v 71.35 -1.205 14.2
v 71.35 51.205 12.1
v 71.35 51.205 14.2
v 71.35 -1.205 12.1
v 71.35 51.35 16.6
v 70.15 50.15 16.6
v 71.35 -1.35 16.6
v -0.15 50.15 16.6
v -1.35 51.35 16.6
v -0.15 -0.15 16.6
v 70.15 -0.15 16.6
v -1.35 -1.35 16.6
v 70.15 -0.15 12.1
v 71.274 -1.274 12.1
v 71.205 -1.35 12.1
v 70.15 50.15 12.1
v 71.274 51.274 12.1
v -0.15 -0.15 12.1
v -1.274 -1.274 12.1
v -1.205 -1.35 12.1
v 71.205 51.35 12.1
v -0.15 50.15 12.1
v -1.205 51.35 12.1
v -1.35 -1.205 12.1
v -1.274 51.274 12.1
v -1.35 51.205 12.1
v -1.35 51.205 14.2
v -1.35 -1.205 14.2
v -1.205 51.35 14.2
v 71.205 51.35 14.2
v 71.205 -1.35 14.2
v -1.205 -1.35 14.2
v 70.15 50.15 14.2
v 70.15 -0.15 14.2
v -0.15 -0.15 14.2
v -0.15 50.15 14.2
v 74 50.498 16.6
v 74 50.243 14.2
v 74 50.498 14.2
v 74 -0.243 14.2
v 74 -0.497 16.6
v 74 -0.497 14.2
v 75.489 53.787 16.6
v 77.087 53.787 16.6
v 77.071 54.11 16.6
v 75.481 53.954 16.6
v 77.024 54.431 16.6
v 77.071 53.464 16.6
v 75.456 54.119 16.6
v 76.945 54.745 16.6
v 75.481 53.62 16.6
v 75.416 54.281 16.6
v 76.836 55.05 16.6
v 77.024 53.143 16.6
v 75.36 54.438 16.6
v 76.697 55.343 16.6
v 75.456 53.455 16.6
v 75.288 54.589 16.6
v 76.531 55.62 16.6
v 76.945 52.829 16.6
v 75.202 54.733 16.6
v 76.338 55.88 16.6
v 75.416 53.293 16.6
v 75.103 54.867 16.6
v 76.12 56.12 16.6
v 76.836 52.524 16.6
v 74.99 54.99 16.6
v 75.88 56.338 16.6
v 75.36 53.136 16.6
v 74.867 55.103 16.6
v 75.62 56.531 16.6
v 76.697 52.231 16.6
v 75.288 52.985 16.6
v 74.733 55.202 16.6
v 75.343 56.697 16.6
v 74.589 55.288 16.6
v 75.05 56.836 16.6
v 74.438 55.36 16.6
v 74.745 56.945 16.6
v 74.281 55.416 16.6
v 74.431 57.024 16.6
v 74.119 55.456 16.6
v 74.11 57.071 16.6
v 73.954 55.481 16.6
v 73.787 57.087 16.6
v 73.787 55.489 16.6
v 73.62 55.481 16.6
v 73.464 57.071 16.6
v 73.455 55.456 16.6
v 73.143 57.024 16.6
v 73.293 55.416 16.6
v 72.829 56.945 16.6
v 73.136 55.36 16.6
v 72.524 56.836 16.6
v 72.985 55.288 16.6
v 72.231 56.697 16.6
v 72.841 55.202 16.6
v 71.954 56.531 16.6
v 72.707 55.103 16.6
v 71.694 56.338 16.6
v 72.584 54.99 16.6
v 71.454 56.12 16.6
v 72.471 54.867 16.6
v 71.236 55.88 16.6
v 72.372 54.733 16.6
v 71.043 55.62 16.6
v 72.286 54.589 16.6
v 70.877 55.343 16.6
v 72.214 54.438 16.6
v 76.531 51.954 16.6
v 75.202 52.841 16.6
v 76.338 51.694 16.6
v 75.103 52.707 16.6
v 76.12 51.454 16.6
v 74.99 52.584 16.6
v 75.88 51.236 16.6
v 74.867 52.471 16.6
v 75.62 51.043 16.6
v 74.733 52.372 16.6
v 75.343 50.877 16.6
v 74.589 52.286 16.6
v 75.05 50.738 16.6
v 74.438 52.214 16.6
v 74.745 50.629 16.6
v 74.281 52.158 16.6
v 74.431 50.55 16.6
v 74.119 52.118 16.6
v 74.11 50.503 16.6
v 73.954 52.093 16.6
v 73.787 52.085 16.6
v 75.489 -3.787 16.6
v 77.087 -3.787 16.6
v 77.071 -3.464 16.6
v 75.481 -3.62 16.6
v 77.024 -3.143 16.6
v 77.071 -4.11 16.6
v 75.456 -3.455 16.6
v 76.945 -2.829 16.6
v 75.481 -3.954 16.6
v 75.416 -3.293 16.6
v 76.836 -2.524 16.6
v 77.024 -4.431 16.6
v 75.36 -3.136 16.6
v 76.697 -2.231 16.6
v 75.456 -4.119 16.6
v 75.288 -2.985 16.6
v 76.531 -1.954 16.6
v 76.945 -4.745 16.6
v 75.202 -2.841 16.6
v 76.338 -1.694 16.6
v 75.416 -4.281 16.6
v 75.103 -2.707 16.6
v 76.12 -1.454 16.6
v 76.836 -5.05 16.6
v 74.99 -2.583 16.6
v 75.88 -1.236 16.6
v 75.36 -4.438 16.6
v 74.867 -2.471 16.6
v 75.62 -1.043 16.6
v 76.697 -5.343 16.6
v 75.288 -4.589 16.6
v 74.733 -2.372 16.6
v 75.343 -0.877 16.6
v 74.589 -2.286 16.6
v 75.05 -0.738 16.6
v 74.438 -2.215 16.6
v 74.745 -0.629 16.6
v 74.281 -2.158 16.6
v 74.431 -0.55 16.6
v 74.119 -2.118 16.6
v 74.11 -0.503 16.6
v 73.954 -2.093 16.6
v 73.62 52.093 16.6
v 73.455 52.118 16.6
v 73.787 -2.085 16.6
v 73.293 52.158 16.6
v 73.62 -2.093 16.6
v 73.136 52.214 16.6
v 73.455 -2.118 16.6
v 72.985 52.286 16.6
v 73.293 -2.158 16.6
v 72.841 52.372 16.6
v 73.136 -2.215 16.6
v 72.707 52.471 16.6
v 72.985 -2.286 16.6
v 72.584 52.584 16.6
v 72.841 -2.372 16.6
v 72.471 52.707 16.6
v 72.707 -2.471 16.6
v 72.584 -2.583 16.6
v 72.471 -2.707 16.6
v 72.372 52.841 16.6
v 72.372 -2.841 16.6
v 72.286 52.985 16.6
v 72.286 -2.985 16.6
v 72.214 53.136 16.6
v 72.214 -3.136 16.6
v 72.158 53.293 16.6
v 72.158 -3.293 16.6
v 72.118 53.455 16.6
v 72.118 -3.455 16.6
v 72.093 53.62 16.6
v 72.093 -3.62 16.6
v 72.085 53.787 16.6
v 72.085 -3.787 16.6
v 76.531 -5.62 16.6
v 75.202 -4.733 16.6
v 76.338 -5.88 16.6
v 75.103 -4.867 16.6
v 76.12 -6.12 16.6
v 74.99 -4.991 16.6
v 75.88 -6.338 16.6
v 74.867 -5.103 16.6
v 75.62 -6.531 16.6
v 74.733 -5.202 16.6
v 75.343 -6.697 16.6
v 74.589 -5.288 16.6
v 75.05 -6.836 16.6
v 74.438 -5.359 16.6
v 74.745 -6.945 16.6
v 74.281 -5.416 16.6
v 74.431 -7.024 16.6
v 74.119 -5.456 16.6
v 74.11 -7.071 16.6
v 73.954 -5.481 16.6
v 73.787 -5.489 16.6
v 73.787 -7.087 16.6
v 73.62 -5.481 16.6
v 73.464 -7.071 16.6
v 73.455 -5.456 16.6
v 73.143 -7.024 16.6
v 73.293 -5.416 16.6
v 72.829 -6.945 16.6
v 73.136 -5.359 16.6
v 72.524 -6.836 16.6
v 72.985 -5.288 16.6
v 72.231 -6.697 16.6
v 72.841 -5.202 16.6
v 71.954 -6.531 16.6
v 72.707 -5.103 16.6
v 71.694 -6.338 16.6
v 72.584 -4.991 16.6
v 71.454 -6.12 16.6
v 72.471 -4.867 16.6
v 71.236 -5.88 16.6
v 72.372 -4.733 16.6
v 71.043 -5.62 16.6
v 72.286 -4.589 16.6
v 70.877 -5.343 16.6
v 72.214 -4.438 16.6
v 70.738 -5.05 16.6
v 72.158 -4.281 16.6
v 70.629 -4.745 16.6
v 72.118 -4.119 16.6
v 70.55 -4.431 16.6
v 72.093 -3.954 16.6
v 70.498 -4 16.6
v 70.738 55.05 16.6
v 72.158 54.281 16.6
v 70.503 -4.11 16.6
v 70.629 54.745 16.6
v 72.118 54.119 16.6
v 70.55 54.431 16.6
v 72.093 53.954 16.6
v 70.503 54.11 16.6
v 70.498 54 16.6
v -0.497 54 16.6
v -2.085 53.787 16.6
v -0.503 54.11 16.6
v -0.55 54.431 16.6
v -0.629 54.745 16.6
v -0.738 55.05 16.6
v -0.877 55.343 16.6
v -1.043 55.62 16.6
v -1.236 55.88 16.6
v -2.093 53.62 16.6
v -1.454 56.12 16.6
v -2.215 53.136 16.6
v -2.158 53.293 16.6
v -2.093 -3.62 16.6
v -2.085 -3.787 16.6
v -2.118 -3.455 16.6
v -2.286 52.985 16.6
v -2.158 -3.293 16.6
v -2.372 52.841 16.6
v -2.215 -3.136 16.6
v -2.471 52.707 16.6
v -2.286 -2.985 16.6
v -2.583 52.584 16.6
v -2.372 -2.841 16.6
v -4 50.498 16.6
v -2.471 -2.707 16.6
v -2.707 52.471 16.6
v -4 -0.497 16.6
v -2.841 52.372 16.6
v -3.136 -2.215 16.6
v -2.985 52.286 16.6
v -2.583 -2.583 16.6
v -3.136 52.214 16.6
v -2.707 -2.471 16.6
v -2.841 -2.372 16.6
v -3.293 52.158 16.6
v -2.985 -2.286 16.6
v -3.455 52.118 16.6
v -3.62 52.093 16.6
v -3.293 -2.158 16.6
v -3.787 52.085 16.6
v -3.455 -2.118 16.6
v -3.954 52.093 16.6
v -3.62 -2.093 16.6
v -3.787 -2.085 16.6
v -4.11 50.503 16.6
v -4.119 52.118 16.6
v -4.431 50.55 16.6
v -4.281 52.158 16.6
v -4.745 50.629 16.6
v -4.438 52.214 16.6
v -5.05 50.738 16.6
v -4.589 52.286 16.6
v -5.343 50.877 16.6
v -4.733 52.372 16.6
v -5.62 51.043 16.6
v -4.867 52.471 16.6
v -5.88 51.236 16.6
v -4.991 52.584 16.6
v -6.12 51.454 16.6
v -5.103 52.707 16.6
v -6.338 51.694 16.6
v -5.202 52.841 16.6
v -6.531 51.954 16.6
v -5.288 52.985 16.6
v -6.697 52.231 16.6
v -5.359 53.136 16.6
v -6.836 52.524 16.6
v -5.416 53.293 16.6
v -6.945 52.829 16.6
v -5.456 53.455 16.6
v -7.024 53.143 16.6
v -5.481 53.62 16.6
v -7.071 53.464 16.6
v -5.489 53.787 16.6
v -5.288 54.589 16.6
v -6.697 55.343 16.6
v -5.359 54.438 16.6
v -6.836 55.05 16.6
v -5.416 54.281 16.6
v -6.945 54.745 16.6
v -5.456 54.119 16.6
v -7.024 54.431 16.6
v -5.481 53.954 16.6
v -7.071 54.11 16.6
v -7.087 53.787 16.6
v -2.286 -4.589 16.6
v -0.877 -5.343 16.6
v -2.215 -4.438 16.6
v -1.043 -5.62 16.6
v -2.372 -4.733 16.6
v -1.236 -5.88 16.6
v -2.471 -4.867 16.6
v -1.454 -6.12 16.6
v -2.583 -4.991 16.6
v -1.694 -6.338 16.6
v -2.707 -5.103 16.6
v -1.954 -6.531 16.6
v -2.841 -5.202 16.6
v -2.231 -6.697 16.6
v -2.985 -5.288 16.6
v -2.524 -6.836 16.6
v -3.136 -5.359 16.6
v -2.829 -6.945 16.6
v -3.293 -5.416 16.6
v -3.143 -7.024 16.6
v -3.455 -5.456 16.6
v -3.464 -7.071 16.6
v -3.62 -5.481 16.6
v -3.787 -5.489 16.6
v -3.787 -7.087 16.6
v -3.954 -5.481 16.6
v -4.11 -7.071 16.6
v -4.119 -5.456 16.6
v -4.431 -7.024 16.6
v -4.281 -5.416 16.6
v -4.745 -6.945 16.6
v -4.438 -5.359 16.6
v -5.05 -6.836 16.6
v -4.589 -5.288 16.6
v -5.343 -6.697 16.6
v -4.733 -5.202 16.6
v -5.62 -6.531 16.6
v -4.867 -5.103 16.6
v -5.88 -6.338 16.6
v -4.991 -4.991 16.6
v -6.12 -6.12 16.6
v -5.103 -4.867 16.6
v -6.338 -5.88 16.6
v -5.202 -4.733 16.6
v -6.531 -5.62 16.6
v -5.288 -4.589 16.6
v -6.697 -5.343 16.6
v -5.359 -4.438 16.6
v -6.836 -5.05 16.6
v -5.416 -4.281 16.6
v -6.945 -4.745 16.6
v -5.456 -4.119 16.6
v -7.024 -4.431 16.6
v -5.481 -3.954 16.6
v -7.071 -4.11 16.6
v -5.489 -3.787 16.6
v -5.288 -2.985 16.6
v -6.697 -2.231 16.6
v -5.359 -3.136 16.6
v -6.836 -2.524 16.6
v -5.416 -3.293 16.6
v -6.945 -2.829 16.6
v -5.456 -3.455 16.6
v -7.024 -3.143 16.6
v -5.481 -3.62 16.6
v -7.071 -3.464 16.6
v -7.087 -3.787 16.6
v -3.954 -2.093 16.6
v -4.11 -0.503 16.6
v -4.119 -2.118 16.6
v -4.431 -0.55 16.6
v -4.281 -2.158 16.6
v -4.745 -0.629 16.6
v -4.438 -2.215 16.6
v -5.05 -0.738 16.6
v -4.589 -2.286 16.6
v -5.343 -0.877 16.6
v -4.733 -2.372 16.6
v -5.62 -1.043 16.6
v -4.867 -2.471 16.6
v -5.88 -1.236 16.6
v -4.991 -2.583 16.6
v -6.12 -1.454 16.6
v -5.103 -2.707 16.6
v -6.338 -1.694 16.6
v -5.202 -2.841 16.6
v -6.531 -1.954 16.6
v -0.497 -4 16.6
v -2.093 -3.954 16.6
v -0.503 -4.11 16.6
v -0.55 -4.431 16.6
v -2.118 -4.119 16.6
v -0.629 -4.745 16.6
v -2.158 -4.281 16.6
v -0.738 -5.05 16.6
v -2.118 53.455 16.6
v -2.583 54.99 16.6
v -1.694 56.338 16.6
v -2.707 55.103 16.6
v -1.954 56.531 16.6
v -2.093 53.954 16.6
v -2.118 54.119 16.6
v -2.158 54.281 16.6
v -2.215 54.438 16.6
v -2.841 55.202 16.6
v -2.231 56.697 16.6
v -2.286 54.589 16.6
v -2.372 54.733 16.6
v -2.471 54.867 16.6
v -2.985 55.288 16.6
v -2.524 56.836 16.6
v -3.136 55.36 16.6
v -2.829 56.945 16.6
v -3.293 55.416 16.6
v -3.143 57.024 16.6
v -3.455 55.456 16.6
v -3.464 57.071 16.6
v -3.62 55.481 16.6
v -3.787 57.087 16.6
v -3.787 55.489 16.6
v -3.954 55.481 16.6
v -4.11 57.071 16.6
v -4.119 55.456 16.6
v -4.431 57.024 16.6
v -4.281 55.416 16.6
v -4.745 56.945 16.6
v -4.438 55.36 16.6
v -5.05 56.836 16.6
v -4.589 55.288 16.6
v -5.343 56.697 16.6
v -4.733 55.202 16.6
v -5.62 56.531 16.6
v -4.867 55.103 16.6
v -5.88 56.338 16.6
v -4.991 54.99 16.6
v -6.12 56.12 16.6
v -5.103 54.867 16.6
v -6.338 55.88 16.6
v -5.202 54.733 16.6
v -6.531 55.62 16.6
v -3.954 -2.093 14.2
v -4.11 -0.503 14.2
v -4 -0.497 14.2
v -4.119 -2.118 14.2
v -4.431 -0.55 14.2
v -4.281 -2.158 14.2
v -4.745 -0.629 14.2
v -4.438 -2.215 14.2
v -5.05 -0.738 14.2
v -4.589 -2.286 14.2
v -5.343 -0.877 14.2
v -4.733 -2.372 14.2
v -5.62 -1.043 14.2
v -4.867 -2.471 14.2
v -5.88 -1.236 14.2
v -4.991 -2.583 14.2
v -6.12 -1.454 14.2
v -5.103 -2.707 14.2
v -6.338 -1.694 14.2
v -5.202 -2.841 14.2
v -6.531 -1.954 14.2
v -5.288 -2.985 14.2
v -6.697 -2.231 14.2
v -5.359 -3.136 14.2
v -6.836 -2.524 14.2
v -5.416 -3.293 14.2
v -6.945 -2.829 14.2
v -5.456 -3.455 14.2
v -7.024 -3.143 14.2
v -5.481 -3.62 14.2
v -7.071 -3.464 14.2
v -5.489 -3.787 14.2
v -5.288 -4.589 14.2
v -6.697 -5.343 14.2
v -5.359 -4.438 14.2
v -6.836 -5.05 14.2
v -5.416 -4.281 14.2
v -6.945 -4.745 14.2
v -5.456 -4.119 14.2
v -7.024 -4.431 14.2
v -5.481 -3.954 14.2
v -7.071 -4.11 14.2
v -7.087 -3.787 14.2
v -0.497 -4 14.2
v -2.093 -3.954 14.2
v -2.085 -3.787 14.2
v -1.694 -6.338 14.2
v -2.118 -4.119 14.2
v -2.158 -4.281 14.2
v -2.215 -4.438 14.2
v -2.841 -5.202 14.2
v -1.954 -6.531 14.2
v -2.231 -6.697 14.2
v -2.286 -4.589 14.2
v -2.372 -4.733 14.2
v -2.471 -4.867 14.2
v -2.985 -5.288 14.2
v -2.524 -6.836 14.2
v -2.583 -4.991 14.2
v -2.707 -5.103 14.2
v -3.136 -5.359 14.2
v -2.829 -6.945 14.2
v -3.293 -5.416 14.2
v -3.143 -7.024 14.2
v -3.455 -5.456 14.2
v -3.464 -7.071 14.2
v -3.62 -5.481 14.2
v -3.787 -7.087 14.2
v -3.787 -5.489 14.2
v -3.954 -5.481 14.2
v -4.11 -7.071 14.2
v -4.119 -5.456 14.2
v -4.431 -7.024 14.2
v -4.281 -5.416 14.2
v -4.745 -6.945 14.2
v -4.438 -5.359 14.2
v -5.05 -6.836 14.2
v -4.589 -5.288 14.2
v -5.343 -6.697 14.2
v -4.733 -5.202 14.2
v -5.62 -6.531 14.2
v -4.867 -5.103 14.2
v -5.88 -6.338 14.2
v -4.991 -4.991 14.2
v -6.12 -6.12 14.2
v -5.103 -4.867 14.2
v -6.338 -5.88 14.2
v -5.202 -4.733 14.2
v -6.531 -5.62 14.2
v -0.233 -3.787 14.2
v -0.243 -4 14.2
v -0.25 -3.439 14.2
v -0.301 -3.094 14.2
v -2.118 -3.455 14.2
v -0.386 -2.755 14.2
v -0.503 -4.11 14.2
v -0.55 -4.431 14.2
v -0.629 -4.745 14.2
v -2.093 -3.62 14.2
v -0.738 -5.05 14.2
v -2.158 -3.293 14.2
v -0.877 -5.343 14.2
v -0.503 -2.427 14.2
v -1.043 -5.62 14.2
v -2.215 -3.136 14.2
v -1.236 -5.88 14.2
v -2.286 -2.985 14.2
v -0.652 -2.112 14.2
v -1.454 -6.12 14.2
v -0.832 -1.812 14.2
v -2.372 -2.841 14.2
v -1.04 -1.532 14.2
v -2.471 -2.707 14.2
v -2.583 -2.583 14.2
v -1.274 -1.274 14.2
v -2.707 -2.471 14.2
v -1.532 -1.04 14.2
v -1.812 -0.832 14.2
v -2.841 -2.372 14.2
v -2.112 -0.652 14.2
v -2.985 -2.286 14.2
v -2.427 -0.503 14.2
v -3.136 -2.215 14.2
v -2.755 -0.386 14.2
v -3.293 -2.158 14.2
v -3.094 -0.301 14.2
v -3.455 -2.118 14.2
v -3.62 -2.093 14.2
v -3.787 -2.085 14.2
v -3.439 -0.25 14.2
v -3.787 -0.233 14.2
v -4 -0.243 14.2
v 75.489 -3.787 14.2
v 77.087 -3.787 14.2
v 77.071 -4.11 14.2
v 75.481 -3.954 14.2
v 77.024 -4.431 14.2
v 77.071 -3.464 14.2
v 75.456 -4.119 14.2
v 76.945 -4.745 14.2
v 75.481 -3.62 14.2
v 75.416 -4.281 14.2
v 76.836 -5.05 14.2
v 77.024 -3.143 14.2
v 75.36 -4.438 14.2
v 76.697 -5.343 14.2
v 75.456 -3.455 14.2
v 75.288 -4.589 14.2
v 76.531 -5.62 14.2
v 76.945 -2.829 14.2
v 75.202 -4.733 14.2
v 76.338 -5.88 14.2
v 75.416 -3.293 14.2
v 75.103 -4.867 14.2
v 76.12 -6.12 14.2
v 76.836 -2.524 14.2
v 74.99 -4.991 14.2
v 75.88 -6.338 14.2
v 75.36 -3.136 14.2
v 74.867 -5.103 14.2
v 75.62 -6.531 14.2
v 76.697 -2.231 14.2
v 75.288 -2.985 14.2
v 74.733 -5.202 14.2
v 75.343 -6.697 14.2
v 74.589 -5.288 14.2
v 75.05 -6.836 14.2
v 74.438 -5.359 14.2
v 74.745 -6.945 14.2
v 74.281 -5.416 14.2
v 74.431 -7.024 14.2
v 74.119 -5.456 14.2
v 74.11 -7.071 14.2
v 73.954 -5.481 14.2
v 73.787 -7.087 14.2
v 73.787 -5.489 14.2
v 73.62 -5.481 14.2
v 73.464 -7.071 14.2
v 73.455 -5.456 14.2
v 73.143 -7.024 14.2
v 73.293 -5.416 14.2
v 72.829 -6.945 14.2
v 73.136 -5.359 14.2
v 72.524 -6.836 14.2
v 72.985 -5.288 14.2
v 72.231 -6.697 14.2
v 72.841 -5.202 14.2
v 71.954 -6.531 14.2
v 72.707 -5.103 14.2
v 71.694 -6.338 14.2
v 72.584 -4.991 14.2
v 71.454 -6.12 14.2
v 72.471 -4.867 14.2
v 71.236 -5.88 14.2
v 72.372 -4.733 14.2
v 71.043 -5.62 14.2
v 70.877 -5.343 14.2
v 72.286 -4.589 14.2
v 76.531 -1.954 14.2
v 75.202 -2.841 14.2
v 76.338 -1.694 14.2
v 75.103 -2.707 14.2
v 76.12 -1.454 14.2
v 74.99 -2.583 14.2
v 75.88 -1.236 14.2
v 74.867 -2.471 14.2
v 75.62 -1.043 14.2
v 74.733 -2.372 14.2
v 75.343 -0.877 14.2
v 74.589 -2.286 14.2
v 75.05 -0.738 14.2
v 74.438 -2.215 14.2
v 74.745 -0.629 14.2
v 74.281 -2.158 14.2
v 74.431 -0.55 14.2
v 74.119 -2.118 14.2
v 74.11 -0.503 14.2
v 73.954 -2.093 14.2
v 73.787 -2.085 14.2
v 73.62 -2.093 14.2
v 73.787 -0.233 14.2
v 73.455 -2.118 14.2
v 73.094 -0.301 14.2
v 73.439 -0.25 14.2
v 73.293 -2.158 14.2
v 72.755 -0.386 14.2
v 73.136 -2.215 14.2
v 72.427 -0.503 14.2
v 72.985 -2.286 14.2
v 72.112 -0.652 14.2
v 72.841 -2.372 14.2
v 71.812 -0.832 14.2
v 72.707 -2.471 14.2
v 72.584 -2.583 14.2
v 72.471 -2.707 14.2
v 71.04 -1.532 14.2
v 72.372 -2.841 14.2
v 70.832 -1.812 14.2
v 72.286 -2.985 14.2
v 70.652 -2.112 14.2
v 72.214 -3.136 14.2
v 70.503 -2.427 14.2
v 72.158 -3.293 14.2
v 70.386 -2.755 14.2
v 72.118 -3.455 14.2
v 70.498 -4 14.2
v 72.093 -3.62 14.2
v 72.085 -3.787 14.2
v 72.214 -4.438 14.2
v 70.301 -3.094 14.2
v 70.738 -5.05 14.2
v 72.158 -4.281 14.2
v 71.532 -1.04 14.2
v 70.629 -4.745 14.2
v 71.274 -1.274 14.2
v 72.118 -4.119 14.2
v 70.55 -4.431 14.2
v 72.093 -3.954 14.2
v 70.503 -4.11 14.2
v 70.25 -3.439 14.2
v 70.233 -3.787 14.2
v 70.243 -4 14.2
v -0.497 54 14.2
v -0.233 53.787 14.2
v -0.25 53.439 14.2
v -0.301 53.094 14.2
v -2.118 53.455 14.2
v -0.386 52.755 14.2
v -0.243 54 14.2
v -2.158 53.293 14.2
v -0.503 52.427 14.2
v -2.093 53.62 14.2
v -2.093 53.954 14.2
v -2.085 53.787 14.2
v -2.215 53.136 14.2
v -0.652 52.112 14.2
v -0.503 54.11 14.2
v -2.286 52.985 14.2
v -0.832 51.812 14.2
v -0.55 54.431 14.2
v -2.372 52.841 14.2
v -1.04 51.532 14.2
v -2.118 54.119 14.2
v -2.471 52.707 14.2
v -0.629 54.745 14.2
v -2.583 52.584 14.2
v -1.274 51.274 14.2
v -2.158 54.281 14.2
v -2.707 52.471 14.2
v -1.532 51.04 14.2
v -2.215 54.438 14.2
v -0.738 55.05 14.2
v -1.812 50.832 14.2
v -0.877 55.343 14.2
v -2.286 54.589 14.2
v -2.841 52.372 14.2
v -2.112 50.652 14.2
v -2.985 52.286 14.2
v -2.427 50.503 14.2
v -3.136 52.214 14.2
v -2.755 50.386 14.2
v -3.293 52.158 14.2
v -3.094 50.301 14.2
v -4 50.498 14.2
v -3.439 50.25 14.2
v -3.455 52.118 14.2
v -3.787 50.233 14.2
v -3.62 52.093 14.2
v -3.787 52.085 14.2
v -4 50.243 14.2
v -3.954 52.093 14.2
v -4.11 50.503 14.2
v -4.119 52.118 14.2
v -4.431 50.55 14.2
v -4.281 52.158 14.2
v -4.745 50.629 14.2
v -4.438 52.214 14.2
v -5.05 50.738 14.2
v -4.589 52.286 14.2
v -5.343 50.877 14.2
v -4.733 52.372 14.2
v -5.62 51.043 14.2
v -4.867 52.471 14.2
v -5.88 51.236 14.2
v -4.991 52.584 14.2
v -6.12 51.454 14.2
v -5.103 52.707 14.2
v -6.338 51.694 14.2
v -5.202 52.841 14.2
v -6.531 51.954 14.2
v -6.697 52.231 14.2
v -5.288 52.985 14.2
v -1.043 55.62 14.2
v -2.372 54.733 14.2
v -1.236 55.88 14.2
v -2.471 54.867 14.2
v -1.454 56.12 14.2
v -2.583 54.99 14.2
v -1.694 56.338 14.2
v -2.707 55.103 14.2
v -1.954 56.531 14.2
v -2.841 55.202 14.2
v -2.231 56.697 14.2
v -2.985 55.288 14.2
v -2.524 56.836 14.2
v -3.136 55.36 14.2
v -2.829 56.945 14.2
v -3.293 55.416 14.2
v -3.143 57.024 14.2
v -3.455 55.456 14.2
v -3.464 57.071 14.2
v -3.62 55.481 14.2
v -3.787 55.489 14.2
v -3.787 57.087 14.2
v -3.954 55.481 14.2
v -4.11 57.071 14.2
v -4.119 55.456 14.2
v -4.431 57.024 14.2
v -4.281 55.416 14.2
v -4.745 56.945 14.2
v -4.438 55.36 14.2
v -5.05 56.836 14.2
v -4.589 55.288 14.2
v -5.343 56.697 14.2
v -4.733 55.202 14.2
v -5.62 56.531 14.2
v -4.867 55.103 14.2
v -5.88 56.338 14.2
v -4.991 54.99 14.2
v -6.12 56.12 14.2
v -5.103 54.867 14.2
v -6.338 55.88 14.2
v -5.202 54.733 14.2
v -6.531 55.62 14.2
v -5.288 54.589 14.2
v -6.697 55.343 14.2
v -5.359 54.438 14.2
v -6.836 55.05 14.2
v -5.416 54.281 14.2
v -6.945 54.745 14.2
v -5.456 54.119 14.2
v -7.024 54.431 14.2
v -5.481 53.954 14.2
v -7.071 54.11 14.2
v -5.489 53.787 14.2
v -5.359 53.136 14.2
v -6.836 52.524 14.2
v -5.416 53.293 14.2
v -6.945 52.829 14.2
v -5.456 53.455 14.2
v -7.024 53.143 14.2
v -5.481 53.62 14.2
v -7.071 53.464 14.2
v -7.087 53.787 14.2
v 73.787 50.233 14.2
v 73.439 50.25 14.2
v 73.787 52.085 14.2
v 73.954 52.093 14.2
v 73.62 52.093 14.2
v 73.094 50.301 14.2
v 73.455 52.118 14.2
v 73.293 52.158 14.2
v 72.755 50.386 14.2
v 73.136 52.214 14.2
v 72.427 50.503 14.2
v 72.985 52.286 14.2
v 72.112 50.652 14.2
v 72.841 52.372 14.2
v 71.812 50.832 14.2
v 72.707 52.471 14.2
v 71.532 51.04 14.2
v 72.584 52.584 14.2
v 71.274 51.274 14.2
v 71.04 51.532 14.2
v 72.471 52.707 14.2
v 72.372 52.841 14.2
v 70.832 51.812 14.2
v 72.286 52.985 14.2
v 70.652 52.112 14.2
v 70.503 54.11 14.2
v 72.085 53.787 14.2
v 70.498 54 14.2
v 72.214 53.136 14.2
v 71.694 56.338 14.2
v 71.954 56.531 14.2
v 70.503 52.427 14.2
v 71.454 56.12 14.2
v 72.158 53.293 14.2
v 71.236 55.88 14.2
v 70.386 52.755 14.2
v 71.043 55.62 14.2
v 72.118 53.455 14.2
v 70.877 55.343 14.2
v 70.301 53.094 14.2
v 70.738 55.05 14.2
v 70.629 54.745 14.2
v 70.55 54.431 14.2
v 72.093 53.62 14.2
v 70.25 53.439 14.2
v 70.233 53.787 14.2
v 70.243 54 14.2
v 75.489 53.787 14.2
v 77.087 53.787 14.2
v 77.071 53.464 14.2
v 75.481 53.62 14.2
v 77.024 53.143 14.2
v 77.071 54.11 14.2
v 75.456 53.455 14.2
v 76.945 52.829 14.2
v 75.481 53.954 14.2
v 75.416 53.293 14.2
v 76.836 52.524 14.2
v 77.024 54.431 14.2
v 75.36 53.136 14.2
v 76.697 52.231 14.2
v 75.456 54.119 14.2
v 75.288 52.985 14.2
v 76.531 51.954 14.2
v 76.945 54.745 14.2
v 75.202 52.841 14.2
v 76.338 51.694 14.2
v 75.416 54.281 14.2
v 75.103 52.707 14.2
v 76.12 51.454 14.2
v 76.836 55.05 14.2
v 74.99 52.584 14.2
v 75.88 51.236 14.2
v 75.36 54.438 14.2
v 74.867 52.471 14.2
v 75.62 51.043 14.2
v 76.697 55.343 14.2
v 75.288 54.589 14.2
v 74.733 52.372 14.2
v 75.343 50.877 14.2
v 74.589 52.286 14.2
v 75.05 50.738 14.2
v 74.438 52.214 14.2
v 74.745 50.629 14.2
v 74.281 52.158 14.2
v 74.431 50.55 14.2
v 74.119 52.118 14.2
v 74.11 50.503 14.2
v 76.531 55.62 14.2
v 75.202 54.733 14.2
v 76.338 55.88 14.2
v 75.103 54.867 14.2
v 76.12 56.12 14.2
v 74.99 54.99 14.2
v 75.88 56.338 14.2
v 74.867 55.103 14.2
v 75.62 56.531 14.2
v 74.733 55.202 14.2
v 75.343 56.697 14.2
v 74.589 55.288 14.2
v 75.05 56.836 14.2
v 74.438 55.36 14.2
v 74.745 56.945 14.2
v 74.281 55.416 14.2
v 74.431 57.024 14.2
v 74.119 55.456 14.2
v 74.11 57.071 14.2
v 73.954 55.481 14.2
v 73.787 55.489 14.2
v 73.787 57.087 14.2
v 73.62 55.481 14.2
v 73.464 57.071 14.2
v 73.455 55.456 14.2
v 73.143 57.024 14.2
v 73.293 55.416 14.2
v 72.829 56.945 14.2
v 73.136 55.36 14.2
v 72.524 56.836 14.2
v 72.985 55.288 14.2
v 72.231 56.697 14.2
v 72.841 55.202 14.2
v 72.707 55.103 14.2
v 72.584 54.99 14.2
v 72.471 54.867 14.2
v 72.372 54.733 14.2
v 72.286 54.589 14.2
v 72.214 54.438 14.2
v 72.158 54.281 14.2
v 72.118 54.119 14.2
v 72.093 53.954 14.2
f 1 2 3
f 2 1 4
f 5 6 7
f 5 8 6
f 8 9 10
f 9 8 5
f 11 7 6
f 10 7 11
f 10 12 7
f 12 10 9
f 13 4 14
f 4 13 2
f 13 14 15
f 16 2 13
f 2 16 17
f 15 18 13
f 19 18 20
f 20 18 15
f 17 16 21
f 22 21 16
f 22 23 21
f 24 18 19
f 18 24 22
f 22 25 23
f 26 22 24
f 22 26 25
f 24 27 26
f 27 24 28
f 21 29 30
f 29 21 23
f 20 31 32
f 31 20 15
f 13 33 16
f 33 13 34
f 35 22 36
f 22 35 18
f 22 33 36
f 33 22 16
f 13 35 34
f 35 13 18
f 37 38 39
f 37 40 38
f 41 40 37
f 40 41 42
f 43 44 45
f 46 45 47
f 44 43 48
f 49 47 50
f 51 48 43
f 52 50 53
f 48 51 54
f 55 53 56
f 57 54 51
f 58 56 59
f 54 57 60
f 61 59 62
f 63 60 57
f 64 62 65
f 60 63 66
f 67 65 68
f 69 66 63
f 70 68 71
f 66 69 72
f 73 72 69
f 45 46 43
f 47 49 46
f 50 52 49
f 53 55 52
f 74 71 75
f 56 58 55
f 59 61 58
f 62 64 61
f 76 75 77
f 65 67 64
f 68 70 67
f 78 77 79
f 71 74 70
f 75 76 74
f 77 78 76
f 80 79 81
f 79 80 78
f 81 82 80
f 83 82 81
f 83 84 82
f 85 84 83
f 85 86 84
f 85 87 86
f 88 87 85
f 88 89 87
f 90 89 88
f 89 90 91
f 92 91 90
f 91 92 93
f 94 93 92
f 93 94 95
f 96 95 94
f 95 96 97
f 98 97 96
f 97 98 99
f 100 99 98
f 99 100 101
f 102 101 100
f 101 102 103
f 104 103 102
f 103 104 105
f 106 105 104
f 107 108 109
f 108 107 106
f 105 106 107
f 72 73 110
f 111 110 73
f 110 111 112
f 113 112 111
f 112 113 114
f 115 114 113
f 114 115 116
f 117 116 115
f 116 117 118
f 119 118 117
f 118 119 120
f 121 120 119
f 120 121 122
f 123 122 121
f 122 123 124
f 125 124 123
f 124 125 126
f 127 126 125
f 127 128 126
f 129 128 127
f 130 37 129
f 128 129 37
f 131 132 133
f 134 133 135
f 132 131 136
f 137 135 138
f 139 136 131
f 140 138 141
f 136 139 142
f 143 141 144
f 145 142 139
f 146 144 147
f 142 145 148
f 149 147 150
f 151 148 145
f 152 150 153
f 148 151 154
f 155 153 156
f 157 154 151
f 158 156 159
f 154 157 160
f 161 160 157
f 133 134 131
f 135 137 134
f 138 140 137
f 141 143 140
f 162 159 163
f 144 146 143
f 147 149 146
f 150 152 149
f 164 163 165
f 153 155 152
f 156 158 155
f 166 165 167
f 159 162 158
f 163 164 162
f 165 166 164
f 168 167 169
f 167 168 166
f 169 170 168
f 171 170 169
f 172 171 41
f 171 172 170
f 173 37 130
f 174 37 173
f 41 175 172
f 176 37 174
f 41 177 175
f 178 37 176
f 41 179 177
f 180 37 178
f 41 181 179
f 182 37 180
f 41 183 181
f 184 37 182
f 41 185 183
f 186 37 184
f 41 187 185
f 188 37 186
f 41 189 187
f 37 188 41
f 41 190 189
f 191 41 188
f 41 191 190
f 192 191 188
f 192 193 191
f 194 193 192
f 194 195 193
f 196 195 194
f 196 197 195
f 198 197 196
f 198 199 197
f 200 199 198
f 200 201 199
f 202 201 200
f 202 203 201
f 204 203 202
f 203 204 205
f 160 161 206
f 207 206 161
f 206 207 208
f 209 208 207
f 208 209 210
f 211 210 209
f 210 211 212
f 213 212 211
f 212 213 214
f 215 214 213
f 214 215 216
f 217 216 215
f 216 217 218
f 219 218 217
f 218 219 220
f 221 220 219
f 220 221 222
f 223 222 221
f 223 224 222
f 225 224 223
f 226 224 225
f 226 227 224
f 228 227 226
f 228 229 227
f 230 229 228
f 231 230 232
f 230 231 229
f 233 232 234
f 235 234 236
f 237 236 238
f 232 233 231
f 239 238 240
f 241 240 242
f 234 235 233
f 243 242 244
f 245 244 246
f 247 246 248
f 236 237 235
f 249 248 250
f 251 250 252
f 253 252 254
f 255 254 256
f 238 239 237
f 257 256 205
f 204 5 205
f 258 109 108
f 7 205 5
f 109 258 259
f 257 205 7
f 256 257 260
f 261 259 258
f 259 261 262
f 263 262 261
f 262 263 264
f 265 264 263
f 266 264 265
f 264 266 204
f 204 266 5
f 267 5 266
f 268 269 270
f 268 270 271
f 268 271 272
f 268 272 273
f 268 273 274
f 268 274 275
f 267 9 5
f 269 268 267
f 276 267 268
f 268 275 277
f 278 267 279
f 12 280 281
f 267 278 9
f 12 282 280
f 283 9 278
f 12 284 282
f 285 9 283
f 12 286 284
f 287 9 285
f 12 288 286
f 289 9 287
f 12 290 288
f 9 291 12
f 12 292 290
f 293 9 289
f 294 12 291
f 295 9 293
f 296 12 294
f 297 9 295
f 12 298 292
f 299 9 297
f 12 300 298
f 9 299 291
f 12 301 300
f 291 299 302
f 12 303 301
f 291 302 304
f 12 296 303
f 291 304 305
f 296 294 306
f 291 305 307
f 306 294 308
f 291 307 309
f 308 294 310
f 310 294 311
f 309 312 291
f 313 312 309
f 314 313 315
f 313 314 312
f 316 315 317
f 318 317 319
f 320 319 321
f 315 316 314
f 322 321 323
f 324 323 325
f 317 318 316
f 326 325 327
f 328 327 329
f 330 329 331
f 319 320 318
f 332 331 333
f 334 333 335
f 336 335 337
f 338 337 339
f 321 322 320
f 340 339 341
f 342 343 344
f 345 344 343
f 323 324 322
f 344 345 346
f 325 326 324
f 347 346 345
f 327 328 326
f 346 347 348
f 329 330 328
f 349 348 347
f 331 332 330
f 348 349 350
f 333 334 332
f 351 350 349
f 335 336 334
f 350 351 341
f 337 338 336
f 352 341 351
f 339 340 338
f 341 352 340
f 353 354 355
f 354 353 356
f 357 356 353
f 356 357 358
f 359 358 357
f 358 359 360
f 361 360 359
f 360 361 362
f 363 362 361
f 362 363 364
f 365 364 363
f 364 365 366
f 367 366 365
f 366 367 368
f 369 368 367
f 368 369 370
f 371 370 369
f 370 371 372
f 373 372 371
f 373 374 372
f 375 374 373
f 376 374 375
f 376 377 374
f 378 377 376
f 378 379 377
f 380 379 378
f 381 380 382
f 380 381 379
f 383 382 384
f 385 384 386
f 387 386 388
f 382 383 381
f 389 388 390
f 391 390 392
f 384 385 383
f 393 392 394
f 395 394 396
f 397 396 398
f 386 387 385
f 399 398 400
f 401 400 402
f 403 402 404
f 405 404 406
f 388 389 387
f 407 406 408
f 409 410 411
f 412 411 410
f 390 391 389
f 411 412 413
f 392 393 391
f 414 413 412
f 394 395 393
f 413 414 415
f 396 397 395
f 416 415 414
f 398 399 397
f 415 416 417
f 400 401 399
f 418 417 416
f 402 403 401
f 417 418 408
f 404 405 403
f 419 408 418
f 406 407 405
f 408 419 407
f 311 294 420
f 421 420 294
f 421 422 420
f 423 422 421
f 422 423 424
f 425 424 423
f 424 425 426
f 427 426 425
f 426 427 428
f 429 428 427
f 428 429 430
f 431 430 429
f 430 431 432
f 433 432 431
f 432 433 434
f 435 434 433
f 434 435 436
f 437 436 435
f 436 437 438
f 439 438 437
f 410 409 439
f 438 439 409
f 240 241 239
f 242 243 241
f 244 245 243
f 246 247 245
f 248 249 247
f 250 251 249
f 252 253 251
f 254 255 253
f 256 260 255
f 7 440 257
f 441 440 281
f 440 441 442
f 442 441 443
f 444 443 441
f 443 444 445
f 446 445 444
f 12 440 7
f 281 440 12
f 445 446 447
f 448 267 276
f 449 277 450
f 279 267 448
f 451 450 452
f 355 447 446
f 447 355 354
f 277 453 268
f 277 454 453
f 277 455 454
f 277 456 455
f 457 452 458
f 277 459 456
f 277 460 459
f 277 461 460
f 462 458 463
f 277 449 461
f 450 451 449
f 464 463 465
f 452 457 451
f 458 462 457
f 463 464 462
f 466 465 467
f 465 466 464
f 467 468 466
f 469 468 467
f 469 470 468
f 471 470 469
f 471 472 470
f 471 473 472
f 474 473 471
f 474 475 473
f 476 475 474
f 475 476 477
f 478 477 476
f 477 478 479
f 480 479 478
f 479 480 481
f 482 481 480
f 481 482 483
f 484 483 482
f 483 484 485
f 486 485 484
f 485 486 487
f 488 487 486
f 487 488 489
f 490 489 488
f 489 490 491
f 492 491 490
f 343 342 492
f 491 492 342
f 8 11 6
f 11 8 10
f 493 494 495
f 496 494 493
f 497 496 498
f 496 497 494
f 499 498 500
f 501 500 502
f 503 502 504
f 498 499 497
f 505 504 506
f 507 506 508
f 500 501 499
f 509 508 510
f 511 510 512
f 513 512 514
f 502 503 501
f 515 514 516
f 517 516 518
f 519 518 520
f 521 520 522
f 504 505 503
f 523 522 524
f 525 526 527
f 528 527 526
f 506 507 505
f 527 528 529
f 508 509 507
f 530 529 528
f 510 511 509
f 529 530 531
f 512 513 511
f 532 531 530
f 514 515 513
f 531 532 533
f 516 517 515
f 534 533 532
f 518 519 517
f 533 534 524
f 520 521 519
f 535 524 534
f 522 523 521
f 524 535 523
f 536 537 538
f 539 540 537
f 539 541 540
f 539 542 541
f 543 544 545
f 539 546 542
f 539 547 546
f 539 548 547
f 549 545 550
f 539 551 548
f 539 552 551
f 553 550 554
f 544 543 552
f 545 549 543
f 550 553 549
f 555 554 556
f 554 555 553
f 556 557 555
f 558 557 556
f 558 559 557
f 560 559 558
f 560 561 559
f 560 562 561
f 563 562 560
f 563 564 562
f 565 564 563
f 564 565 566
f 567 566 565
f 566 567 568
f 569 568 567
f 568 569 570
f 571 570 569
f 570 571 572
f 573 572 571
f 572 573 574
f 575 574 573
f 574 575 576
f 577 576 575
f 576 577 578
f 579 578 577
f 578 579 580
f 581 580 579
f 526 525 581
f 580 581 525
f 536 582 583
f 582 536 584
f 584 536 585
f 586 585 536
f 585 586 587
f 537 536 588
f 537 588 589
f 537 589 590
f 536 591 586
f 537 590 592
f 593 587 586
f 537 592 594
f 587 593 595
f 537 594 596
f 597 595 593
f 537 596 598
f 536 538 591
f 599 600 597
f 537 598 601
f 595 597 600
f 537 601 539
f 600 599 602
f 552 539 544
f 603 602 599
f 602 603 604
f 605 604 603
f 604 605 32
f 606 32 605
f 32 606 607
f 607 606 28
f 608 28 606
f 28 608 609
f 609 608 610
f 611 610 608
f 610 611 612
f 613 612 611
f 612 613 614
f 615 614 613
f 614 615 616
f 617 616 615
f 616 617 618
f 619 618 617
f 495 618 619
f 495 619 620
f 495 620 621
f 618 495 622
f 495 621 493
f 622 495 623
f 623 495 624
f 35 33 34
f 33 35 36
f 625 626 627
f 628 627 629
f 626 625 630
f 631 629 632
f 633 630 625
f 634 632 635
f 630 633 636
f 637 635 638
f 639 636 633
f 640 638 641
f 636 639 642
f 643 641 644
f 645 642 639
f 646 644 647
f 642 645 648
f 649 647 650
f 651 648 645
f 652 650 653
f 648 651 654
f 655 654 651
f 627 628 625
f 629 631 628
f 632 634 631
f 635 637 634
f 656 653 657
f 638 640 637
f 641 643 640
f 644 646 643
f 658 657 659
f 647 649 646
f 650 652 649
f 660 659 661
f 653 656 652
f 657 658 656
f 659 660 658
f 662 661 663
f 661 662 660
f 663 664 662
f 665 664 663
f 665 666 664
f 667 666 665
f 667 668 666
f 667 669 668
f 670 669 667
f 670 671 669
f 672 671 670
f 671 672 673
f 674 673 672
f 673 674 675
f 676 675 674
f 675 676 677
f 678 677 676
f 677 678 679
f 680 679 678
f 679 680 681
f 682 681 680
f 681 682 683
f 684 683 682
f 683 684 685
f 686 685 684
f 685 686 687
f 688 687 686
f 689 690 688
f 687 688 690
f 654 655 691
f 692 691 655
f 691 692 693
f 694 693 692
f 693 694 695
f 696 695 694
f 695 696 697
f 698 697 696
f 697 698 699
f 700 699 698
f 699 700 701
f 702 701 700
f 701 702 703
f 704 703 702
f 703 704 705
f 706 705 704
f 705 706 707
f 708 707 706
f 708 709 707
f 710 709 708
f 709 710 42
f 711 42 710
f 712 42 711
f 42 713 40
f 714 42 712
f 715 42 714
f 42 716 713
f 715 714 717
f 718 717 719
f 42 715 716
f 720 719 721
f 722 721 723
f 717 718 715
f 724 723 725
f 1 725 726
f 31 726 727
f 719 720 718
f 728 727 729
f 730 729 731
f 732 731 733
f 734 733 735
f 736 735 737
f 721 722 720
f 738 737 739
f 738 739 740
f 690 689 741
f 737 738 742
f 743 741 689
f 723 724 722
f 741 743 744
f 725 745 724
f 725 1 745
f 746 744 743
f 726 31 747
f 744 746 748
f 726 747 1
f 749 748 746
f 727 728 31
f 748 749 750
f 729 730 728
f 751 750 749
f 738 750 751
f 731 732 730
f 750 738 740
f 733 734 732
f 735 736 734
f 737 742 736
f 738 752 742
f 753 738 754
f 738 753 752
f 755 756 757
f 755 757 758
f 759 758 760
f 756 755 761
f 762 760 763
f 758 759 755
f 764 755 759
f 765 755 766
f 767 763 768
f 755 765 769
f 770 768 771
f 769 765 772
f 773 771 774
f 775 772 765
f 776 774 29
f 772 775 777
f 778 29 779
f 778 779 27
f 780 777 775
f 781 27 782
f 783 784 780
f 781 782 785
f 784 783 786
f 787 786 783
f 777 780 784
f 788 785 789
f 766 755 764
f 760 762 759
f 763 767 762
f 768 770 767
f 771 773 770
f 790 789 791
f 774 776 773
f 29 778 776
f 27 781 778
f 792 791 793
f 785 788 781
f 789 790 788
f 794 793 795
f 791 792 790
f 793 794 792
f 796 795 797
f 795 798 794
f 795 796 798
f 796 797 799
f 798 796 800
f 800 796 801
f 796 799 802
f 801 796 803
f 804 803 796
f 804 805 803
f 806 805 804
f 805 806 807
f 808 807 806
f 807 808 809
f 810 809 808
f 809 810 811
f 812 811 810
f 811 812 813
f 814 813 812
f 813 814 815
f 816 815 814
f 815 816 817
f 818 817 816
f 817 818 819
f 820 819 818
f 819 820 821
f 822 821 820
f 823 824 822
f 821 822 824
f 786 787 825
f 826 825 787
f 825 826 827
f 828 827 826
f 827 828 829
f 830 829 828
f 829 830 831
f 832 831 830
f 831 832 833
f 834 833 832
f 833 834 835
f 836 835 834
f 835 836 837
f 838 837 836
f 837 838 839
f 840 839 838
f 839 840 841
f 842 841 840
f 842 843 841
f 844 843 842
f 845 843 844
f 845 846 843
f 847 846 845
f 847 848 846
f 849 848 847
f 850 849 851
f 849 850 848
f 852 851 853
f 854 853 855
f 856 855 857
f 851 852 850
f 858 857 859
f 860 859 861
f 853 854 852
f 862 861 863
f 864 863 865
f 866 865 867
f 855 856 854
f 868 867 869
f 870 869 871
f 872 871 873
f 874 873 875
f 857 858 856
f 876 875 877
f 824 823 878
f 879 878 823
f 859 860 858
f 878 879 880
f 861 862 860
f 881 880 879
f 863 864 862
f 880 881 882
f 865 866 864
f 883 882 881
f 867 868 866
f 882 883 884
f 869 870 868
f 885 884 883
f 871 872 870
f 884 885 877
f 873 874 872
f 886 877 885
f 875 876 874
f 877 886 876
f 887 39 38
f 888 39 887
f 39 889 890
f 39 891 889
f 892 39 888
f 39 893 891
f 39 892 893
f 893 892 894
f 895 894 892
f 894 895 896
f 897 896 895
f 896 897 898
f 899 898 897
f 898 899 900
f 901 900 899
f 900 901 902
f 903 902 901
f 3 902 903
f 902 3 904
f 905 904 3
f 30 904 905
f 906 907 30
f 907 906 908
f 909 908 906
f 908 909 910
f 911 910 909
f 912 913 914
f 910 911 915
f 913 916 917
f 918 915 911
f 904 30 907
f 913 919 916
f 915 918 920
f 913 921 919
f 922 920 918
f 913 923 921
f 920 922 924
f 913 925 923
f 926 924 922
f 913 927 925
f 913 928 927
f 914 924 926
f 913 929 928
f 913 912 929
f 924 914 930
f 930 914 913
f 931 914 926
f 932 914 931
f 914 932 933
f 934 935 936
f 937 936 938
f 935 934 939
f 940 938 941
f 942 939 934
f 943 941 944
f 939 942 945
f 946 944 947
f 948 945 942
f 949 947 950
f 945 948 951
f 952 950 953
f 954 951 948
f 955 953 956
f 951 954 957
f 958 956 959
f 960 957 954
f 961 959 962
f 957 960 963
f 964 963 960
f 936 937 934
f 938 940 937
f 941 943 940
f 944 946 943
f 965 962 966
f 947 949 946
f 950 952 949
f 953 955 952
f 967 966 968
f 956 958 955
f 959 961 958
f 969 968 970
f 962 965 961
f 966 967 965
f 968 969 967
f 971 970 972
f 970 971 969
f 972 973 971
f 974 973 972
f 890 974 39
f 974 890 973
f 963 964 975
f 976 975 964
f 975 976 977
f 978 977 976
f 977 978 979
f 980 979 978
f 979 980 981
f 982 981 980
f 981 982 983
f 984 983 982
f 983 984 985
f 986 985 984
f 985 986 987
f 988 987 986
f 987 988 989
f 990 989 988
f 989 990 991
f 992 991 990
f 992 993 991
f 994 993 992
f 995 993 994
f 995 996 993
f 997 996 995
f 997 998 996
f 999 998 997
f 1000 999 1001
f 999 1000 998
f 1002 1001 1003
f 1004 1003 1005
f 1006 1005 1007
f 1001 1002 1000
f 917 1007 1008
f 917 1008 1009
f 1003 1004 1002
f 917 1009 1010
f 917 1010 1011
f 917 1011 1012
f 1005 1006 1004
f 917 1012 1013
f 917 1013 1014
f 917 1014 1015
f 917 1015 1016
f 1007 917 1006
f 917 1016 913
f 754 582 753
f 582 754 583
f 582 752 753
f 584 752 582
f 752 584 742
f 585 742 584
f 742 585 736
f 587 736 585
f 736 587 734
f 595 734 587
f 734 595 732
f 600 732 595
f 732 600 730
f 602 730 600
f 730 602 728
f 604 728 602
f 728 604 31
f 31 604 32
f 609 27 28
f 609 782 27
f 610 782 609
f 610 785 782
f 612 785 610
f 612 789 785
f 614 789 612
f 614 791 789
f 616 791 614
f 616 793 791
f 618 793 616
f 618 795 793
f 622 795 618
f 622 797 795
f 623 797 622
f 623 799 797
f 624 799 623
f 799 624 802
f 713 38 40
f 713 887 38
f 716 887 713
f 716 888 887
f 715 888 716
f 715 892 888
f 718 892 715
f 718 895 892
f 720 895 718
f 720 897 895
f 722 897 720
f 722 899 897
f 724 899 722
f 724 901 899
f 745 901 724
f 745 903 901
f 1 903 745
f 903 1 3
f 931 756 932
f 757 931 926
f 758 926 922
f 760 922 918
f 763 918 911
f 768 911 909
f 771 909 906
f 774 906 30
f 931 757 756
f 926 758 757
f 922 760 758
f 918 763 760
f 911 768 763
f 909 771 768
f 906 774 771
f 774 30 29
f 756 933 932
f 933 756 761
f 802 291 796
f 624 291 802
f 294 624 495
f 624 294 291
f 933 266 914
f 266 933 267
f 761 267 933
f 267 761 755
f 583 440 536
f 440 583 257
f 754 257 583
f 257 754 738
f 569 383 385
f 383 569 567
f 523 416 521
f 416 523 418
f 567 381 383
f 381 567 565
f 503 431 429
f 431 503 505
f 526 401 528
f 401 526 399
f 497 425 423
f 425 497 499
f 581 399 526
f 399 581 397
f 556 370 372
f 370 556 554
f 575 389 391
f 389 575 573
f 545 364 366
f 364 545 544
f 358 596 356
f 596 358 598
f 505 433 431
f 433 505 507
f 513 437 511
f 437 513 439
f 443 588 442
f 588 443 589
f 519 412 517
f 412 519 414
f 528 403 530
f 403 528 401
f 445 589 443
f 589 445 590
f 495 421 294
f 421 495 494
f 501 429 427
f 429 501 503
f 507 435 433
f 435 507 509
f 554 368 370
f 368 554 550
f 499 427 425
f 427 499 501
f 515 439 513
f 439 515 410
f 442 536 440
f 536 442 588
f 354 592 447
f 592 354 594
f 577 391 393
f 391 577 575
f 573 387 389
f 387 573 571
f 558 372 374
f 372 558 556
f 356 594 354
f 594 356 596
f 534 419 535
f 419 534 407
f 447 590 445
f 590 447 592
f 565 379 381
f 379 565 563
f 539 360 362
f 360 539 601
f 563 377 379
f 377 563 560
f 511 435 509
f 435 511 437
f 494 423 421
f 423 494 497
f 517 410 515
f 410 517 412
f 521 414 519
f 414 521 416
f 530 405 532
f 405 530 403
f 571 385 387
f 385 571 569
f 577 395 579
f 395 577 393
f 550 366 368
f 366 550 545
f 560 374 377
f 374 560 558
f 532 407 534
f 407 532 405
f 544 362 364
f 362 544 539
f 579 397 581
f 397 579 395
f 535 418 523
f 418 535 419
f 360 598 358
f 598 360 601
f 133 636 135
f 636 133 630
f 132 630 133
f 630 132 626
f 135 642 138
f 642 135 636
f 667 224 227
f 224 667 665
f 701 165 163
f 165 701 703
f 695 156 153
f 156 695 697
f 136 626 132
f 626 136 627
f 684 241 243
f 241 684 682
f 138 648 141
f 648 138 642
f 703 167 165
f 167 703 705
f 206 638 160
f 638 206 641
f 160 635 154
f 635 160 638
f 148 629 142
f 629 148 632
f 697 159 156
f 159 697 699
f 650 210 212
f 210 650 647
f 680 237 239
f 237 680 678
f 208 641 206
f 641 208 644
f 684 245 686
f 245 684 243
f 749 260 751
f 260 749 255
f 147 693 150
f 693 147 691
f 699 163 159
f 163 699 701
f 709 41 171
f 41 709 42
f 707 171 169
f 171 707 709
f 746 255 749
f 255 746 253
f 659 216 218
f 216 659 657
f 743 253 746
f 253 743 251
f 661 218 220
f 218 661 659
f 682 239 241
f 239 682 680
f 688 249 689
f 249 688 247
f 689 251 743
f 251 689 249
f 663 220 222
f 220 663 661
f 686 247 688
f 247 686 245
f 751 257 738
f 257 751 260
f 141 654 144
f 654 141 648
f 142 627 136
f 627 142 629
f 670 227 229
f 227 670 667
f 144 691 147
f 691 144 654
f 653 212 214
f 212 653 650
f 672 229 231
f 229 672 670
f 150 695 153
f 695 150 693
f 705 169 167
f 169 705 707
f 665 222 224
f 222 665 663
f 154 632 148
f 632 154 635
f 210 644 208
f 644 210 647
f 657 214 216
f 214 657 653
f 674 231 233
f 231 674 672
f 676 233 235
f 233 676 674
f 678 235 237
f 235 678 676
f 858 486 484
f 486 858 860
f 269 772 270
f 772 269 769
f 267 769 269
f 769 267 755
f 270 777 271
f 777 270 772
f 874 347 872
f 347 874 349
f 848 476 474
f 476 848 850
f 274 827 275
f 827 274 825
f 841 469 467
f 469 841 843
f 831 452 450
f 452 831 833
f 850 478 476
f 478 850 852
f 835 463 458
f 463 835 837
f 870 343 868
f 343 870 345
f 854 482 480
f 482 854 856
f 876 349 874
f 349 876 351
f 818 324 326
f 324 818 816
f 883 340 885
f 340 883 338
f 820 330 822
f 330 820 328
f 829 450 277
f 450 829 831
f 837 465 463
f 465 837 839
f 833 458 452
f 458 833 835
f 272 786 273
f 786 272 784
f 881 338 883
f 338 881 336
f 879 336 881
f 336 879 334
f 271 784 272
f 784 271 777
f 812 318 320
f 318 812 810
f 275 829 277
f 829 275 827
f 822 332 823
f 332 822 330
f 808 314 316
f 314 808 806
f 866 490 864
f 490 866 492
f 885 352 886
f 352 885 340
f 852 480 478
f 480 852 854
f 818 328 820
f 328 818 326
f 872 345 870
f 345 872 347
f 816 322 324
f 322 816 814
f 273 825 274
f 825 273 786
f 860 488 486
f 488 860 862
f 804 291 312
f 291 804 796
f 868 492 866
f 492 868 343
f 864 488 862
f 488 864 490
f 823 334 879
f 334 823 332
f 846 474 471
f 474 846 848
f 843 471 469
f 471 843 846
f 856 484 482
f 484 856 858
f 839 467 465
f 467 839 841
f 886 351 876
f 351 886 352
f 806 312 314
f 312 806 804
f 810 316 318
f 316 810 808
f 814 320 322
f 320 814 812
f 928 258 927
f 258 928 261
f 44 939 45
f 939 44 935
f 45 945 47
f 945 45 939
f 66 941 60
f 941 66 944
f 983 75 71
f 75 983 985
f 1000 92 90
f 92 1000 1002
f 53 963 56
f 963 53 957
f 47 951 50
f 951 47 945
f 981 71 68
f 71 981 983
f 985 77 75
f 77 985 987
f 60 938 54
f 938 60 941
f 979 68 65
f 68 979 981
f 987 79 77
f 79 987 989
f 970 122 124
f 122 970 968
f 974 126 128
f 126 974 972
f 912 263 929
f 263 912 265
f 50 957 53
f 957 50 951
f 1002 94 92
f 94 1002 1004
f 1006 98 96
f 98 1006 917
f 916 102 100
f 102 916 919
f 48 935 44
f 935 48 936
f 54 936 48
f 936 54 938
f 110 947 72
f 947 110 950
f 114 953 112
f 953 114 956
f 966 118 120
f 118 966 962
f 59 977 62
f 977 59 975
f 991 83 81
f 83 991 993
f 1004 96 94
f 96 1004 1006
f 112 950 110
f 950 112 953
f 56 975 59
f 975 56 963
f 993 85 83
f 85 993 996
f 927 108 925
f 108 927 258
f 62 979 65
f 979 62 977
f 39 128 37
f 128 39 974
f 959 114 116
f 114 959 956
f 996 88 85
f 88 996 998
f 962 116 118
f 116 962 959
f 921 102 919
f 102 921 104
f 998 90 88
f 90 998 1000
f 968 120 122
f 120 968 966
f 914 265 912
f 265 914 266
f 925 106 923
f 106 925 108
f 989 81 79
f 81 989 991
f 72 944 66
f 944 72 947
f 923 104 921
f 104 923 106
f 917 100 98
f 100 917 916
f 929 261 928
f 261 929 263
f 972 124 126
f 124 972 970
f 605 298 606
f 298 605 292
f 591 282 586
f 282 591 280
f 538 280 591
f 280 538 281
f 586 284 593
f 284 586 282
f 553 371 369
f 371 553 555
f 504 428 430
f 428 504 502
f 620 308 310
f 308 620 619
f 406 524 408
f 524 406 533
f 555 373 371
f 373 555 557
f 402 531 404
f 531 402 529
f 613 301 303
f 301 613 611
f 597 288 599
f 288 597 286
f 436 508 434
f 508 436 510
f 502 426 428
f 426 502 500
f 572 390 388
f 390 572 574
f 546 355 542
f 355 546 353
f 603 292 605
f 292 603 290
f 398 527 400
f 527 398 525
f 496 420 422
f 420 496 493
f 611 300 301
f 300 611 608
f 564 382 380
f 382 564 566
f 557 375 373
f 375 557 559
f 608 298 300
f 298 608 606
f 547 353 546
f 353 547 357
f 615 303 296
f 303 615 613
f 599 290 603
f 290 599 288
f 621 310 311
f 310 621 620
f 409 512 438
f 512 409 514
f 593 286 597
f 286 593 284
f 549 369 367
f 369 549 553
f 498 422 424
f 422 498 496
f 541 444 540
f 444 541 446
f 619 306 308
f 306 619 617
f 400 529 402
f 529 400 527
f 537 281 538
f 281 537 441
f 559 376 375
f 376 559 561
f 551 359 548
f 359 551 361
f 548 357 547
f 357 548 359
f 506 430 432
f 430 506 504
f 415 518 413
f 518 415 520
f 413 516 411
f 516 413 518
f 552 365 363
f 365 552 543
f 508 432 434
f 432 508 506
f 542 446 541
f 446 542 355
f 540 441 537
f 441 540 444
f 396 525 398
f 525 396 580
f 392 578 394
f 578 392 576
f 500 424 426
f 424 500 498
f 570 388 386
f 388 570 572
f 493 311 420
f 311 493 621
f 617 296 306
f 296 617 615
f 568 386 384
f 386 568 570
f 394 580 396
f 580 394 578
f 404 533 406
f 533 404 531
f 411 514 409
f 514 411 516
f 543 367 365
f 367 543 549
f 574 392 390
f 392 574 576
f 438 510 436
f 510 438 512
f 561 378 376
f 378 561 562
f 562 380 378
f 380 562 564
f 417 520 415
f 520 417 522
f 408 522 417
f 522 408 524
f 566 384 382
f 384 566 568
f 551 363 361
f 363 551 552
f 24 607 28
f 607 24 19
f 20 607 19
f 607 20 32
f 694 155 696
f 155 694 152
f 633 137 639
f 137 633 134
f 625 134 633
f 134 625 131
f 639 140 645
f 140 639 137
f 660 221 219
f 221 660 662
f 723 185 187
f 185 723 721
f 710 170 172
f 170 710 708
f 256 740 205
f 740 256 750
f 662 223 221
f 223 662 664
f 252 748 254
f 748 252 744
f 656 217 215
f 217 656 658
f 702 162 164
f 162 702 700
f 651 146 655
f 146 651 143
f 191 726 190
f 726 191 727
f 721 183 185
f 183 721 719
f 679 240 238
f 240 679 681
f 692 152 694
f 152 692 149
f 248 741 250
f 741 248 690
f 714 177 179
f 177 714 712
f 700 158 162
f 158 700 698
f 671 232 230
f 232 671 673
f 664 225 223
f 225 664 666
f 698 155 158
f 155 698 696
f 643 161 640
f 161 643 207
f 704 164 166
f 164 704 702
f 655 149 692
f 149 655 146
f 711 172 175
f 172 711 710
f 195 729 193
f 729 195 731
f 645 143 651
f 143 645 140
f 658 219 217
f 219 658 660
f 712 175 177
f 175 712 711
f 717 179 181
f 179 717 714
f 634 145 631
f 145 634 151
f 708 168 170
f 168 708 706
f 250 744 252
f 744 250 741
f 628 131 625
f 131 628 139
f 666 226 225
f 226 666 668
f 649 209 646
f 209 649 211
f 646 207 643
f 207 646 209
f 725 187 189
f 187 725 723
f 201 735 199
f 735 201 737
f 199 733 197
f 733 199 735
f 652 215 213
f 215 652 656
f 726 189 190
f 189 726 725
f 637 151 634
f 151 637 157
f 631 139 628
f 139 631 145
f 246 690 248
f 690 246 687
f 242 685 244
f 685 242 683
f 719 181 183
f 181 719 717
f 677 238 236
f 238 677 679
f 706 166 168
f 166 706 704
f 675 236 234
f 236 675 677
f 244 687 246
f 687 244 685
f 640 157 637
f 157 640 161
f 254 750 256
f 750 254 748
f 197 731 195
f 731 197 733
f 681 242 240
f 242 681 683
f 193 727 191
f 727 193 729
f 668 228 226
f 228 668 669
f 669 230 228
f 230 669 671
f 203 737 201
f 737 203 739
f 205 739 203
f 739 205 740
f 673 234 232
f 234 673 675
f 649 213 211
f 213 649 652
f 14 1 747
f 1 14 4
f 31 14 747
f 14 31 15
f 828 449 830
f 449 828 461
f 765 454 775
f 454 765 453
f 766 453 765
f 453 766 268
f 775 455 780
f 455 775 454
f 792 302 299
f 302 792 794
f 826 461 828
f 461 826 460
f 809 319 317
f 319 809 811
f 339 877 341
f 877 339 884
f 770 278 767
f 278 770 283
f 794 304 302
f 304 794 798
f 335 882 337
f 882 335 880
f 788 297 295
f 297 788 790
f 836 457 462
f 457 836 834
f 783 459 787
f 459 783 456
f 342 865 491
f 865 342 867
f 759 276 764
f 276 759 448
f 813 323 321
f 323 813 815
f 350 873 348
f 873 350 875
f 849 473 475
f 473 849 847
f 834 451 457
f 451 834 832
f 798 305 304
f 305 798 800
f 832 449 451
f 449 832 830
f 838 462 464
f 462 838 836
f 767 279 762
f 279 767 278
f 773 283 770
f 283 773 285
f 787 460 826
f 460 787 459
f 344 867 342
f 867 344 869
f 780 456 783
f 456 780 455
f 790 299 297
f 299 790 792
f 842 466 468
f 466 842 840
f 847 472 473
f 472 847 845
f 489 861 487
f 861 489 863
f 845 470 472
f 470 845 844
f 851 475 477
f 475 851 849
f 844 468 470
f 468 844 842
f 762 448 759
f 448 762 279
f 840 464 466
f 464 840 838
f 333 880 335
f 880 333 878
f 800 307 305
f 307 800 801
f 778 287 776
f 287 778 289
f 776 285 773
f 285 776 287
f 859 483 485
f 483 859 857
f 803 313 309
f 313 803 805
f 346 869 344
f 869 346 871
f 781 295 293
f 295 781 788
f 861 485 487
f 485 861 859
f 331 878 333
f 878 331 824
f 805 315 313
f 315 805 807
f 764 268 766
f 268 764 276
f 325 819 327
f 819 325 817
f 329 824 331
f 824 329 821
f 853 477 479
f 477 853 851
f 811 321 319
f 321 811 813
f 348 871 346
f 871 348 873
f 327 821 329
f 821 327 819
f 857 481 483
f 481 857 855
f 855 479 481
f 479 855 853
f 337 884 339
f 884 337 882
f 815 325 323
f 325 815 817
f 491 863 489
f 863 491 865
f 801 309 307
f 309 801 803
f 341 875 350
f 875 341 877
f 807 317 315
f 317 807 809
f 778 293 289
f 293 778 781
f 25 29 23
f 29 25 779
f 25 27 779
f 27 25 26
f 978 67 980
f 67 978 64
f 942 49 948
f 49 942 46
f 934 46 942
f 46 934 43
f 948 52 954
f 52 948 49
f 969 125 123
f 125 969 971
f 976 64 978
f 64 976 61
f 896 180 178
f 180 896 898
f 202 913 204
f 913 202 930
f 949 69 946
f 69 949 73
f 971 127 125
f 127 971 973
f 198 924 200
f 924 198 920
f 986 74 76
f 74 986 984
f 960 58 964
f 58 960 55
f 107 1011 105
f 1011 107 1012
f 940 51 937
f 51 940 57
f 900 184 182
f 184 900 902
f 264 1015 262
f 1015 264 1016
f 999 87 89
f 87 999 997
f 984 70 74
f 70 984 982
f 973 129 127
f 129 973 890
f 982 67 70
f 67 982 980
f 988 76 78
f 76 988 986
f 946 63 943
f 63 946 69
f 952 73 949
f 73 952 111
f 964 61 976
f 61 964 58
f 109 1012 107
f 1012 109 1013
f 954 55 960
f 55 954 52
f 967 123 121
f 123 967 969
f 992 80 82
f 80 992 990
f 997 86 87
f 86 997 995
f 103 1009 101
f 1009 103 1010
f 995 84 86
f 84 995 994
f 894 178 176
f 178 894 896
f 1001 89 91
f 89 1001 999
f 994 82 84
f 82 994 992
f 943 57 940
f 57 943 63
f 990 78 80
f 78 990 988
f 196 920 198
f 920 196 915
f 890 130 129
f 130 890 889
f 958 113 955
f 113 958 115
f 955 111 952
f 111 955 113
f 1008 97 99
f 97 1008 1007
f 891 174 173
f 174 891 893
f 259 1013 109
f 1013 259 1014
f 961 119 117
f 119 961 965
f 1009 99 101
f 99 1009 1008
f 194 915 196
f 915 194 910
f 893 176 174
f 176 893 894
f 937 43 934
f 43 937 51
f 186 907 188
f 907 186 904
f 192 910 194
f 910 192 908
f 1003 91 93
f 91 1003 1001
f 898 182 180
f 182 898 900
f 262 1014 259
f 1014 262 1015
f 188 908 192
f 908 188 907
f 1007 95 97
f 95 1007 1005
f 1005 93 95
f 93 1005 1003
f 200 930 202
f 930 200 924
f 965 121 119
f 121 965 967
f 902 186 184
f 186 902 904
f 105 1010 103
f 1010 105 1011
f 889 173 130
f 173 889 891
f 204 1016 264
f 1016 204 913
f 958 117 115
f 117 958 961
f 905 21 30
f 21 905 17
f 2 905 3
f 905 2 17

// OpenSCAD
// body lid
difference() {
  union() {
    // body lid (lid_plate)
    multmatrix([[1, 0, 0, 35], [0, 1, 0, 25], [0, 0, 1, 14.2], [0, 0, 0, 1]]) translate([-39, -29, 0]) cube([78, 58, 2.4]);
    // add lid_lip (lip)
    multmatrix([[1, 0, 0, 35], [0, 1, 0, 25], [0, 0, 1, 12.1], [0, 0, 0, 1]]) difference() { translate([-36.35, -26.35, 0]) cube([72.7, 52.7, 4.5]); translate([0, 0, -1]) translate([-35.15, -25.15, 0]) cube([70.3, 50.3, 6.5]); }
    // add boss_1_pad (pad)
    multmatrix([[1, 0, 0, -3.787006], [0, 1, 0, -3.787006], [0, 0, 1, 14.2], [0, 0, 0, 1]]) cylinder(h=2.4, d=6.6, $fn=64);
    // add boss_2_pad (pad)
    multmatrix([[1, 0, 0, 73.787006], [0, 1, 0, -3.787006], [0, 0, 1, 14.2], [0, 0, 0, 1]]) cylinder(h=2.4, d=6.6, $fn=64);
    // add boss_3_pad (pad)
    multmatrix([[1, 0, 0, -3.787006], [0, 1, 0, 53.787006], [0, 0, 1, 14.2], [0, 0, 0, 1]]) cylinder(h=2.4, d=6.6, $fn=64);
    // add boss_4_pad (pad)
    multmatrix([[1, 0, 0, 73.787006], [0, 1, 0, 53.787006], [0, 0, 1, 14.2], [0, 0, 0, 1]]) cylinder(h=2.4, d=6.6, $fn=64);
  }
  // cut boss_1_lid_hole (screw_hole)
  multmatrix([[1, 0, 0, -3.787006], [0, 1, 0, -3.787006], [0, 0, 1, 13.2], [0, 0, 0, 1]]) cylinder(h=4.4, d=3.4041, $fn=64);
  // cut boss_1_lip_notch (lip_notch)
  multmatrix([[1, 0, 0, -3.787006], [0, 1, 0, -3.787006], [0, 0, 1, 11.1], [0, 0, 0, 1]]) cylinder(h=3.1, d=7.108563, $fn=64);
  // cut boss_2_lid_hole (screw_hole)
  multmatrix([[1, 0, 0, 73.787006], [0, 1, 0, -3.787006], [0, 0, 1, 13.2], [0, 0, 0, 1]]) cylinder(h=4.4, d=3.4041, $fn=64);
  // cut boss_2_lip_notch (lip_notch)
  multmatrix([[1, 0, 0, 73.787006], [0, 1, 0, -3.787006], [0, 0, 1, 11.1], [0, 0, 0, 1]]) cylinder(h=3.1, d=7.108563, $fn=64);
  // cut boss_3_lid_hole (screw_hole)
  multmatrix([[1, 0, 0, -3.787006], [0, 1, 0, 53.787006], [0, 0, 1, 13.2], [0, 0, 0, 1]]) cylinder(h=4.4, d=3.4041, $fn=64);
  // cut boss_3_lip_notch (lip_notch)
  multmatrix([[1, 0, 0, -3.787006], [0, 1, 0, 53.787006], [0, 0, 1, 11.1], [0, 0, 0, 1]]) cylinder(h=3.1, d=7.108563, $fn=64);
  // cut boss_4_lid_hole (screw_hole)
  multmatrix([[1, 0, 0, 73.787006], [0, 1, 0, 53.787006], [0, 0, 1, 13.2], [0, 0, 0, 1]]) cylinder(h=4.4, d=3.4041, $fn=64);
  // cut boss_4_lip_notch (lip_notch)
  multmatrix([[1, 0, 0, 73.787006], [0, 1, 0, 53.787006], [0, 0, 1, 11.1], [0, 0, 0, 1]]) cylinder(h=3.1, d=7.108563, $fn=64);
}
